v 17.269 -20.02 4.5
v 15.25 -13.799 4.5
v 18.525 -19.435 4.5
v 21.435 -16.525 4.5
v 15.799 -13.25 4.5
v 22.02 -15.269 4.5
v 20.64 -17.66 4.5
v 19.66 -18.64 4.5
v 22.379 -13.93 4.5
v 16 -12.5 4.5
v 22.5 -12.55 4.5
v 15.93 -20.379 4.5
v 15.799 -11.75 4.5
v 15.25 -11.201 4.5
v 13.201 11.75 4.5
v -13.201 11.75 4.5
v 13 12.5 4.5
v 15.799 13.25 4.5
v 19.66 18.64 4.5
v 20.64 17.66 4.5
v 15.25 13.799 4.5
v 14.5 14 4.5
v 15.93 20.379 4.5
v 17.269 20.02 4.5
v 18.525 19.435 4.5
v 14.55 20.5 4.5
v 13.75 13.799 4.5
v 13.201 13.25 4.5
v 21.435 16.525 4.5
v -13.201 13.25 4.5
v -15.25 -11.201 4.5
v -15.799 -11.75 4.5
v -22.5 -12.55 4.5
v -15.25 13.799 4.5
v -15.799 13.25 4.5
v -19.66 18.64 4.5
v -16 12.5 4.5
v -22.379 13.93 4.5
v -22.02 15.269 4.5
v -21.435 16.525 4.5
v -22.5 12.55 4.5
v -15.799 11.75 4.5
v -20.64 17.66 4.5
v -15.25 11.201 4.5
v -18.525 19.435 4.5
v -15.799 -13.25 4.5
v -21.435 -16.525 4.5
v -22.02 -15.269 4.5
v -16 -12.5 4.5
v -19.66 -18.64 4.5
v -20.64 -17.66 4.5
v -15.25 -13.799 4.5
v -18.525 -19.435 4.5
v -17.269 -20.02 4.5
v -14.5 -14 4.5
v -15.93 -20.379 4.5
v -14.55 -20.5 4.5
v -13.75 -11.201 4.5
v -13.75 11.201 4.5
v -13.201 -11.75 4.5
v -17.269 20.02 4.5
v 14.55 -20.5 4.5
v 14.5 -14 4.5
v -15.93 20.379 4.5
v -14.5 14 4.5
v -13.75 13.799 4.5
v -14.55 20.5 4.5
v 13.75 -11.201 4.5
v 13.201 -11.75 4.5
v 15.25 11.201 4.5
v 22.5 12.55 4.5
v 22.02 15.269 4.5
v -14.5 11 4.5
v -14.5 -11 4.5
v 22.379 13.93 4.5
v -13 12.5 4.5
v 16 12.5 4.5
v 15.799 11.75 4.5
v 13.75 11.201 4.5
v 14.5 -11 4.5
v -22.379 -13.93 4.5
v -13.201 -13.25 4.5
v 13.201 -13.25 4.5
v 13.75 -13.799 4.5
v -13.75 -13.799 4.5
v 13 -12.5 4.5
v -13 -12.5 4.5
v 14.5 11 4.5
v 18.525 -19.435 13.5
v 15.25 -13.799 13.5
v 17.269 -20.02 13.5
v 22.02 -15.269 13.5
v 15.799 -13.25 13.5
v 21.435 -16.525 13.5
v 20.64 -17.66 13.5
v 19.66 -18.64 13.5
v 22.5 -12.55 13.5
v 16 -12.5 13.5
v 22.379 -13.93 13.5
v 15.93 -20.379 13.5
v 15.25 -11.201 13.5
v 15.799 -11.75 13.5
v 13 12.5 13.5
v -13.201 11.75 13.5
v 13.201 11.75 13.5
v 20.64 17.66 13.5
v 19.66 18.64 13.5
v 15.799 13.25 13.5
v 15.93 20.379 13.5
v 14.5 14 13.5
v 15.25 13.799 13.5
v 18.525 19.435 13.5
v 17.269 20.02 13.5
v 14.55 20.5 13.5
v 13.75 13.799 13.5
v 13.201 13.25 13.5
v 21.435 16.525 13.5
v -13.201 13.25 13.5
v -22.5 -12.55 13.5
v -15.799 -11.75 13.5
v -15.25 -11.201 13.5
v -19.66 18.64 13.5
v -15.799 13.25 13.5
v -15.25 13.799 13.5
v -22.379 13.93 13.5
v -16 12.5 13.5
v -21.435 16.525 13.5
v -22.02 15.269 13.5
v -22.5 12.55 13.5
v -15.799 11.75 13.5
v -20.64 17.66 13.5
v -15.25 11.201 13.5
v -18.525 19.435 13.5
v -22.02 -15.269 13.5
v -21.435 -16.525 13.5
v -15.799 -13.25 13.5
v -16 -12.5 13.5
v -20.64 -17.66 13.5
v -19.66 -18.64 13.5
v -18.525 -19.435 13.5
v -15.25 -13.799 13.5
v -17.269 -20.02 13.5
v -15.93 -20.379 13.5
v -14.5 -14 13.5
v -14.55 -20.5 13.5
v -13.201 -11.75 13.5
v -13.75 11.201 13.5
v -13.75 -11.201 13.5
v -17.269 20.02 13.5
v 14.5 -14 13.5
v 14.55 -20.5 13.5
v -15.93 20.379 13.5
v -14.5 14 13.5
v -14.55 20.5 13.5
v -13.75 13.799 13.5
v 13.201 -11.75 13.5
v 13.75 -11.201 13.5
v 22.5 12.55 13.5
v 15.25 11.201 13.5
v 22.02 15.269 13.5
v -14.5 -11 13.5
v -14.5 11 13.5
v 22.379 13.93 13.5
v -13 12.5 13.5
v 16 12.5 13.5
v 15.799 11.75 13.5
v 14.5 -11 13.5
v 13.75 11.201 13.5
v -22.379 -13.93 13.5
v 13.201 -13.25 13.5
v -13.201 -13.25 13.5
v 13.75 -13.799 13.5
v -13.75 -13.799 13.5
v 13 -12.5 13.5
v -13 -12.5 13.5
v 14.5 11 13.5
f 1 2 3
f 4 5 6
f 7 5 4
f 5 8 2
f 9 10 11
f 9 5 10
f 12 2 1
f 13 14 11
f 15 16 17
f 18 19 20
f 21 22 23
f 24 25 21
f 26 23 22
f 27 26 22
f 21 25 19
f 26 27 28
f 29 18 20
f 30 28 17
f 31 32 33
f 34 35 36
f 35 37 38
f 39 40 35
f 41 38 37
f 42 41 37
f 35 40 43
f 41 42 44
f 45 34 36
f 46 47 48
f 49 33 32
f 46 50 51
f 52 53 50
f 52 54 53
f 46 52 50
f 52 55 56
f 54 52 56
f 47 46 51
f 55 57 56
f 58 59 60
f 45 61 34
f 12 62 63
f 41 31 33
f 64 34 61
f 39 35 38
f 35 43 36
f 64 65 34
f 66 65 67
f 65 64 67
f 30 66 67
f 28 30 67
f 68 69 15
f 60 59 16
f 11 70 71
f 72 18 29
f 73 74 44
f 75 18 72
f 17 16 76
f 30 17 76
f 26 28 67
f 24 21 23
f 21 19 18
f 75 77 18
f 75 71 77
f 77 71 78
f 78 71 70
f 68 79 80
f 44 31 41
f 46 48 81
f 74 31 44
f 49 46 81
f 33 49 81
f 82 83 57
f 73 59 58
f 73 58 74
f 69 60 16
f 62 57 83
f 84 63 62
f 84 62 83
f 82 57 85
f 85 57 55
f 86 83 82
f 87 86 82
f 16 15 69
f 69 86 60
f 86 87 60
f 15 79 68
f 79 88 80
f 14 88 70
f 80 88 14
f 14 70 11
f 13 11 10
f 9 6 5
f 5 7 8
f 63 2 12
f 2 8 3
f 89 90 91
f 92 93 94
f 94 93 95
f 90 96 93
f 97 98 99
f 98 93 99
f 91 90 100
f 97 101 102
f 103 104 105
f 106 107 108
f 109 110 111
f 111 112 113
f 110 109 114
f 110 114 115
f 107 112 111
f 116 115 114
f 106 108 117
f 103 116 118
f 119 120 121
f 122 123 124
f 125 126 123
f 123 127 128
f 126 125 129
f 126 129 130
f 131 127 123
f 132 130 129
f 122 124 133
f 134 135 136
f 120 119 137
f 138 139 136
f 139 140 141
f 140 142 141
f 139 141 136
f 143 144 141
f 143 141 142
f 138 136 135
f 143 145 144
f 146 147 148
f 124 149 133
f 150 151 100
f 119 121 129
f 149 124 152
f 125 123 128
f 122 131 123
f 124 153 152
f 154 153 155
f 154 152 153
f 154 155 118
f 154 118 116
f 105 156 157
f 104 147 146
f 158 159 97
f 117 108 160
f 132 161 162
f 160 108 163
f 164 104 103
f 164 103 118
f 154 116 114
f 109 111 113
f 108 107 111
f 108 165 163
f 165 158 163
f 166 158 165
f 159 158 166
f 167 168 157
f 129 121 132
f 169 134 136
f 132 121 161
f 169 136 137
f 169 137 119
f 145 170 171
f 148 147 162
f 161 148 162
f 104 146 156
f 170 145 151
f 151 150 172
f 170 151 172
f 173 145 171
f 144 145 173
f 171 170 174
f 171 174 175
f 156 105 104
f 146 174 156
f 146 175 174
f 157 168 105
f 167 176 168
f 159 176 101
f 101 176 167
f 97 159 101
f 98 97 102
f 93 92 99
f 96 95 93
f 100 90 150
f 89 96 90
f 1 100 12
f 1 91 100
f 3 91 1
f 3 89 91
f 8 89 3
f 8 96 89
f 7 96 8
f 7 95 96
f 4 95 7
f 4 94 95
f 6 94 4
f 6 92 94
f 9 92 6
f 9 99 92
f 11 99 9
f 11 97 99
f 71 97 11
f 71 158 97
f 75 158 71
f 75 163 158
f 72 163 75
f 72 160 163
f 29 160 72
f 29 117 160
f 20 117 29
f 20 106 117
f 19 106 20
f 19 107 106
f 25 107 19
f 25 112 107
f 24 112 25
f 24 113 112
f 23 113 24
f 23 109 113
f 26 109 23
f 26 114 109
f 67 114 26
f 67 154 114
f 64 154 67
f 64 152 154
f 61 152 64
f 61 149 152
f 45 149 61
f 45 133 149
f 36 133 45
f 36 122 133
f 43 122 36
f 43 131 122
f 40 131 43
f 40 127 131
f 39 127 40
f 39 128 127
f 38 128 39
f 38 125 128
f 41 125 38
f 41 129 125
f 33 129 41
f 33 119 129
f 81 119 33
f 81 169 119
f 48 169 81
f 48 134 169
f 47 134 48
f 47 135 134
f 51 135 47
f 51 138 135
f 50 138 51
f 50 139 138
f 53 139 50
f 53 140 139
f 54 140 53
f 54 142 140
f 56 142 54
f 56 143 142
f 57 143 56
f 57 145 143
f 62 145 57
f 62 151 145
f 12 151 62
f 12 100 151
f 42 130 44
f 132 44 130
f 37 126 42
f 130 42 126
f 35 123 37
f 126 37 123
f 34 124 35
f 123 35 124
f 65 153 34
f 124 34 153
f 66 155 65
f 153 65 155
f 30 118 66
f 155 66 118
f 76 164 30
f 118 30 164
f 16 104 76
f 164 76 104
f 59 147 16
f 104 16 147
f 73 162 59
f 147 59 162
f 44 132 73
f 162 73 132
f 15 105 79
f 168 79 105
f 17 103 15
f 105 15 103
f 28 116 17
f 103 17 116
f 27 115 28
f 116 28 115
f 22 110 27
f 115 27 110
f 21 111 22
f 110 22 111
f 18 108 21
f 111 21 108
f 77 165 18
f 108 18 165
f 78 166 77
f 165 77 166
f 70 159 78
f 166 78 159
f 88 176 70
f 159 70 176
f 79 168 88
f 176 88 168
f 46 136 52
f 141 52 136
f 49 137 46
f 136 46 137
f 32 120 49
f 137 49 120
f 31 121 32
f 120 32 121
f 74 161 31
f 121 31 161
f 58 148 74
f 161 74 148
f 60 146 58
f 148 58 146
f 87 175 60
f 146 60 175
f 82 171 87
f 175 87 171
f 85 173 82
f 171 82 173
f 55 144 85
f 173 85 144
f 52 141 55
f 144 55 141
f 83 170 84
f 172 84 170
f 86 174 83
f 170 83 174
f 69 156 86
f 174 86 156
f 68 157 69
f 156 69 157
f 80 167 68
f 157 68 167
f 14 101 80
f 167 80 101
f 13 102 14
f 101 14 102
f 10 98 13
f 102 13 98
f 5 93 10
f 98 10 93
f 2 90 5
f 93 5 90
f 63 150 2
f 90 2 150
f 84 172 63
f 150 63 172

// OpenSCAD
thickness = 9;
outside_radius = 8;
separation = 29;
spacing = 25;

module plate(h) {
  linear_extrude(height=h) difference() {
    minkowski() {
      square([0.1+separation, 0.1+spacing], center=true);
      circle(r=outside_radius-0.05, $fn=36);
    }
    for (x = [-separation/2, separation/2]) {
      for (y = [-spacing/2, spacing/2]) {
        translate([x, y])
          circle(r=1.5, $fn=12);
      }
    }
  }
}

translate([0, 0, thickness/2])
  plate(thickness);
